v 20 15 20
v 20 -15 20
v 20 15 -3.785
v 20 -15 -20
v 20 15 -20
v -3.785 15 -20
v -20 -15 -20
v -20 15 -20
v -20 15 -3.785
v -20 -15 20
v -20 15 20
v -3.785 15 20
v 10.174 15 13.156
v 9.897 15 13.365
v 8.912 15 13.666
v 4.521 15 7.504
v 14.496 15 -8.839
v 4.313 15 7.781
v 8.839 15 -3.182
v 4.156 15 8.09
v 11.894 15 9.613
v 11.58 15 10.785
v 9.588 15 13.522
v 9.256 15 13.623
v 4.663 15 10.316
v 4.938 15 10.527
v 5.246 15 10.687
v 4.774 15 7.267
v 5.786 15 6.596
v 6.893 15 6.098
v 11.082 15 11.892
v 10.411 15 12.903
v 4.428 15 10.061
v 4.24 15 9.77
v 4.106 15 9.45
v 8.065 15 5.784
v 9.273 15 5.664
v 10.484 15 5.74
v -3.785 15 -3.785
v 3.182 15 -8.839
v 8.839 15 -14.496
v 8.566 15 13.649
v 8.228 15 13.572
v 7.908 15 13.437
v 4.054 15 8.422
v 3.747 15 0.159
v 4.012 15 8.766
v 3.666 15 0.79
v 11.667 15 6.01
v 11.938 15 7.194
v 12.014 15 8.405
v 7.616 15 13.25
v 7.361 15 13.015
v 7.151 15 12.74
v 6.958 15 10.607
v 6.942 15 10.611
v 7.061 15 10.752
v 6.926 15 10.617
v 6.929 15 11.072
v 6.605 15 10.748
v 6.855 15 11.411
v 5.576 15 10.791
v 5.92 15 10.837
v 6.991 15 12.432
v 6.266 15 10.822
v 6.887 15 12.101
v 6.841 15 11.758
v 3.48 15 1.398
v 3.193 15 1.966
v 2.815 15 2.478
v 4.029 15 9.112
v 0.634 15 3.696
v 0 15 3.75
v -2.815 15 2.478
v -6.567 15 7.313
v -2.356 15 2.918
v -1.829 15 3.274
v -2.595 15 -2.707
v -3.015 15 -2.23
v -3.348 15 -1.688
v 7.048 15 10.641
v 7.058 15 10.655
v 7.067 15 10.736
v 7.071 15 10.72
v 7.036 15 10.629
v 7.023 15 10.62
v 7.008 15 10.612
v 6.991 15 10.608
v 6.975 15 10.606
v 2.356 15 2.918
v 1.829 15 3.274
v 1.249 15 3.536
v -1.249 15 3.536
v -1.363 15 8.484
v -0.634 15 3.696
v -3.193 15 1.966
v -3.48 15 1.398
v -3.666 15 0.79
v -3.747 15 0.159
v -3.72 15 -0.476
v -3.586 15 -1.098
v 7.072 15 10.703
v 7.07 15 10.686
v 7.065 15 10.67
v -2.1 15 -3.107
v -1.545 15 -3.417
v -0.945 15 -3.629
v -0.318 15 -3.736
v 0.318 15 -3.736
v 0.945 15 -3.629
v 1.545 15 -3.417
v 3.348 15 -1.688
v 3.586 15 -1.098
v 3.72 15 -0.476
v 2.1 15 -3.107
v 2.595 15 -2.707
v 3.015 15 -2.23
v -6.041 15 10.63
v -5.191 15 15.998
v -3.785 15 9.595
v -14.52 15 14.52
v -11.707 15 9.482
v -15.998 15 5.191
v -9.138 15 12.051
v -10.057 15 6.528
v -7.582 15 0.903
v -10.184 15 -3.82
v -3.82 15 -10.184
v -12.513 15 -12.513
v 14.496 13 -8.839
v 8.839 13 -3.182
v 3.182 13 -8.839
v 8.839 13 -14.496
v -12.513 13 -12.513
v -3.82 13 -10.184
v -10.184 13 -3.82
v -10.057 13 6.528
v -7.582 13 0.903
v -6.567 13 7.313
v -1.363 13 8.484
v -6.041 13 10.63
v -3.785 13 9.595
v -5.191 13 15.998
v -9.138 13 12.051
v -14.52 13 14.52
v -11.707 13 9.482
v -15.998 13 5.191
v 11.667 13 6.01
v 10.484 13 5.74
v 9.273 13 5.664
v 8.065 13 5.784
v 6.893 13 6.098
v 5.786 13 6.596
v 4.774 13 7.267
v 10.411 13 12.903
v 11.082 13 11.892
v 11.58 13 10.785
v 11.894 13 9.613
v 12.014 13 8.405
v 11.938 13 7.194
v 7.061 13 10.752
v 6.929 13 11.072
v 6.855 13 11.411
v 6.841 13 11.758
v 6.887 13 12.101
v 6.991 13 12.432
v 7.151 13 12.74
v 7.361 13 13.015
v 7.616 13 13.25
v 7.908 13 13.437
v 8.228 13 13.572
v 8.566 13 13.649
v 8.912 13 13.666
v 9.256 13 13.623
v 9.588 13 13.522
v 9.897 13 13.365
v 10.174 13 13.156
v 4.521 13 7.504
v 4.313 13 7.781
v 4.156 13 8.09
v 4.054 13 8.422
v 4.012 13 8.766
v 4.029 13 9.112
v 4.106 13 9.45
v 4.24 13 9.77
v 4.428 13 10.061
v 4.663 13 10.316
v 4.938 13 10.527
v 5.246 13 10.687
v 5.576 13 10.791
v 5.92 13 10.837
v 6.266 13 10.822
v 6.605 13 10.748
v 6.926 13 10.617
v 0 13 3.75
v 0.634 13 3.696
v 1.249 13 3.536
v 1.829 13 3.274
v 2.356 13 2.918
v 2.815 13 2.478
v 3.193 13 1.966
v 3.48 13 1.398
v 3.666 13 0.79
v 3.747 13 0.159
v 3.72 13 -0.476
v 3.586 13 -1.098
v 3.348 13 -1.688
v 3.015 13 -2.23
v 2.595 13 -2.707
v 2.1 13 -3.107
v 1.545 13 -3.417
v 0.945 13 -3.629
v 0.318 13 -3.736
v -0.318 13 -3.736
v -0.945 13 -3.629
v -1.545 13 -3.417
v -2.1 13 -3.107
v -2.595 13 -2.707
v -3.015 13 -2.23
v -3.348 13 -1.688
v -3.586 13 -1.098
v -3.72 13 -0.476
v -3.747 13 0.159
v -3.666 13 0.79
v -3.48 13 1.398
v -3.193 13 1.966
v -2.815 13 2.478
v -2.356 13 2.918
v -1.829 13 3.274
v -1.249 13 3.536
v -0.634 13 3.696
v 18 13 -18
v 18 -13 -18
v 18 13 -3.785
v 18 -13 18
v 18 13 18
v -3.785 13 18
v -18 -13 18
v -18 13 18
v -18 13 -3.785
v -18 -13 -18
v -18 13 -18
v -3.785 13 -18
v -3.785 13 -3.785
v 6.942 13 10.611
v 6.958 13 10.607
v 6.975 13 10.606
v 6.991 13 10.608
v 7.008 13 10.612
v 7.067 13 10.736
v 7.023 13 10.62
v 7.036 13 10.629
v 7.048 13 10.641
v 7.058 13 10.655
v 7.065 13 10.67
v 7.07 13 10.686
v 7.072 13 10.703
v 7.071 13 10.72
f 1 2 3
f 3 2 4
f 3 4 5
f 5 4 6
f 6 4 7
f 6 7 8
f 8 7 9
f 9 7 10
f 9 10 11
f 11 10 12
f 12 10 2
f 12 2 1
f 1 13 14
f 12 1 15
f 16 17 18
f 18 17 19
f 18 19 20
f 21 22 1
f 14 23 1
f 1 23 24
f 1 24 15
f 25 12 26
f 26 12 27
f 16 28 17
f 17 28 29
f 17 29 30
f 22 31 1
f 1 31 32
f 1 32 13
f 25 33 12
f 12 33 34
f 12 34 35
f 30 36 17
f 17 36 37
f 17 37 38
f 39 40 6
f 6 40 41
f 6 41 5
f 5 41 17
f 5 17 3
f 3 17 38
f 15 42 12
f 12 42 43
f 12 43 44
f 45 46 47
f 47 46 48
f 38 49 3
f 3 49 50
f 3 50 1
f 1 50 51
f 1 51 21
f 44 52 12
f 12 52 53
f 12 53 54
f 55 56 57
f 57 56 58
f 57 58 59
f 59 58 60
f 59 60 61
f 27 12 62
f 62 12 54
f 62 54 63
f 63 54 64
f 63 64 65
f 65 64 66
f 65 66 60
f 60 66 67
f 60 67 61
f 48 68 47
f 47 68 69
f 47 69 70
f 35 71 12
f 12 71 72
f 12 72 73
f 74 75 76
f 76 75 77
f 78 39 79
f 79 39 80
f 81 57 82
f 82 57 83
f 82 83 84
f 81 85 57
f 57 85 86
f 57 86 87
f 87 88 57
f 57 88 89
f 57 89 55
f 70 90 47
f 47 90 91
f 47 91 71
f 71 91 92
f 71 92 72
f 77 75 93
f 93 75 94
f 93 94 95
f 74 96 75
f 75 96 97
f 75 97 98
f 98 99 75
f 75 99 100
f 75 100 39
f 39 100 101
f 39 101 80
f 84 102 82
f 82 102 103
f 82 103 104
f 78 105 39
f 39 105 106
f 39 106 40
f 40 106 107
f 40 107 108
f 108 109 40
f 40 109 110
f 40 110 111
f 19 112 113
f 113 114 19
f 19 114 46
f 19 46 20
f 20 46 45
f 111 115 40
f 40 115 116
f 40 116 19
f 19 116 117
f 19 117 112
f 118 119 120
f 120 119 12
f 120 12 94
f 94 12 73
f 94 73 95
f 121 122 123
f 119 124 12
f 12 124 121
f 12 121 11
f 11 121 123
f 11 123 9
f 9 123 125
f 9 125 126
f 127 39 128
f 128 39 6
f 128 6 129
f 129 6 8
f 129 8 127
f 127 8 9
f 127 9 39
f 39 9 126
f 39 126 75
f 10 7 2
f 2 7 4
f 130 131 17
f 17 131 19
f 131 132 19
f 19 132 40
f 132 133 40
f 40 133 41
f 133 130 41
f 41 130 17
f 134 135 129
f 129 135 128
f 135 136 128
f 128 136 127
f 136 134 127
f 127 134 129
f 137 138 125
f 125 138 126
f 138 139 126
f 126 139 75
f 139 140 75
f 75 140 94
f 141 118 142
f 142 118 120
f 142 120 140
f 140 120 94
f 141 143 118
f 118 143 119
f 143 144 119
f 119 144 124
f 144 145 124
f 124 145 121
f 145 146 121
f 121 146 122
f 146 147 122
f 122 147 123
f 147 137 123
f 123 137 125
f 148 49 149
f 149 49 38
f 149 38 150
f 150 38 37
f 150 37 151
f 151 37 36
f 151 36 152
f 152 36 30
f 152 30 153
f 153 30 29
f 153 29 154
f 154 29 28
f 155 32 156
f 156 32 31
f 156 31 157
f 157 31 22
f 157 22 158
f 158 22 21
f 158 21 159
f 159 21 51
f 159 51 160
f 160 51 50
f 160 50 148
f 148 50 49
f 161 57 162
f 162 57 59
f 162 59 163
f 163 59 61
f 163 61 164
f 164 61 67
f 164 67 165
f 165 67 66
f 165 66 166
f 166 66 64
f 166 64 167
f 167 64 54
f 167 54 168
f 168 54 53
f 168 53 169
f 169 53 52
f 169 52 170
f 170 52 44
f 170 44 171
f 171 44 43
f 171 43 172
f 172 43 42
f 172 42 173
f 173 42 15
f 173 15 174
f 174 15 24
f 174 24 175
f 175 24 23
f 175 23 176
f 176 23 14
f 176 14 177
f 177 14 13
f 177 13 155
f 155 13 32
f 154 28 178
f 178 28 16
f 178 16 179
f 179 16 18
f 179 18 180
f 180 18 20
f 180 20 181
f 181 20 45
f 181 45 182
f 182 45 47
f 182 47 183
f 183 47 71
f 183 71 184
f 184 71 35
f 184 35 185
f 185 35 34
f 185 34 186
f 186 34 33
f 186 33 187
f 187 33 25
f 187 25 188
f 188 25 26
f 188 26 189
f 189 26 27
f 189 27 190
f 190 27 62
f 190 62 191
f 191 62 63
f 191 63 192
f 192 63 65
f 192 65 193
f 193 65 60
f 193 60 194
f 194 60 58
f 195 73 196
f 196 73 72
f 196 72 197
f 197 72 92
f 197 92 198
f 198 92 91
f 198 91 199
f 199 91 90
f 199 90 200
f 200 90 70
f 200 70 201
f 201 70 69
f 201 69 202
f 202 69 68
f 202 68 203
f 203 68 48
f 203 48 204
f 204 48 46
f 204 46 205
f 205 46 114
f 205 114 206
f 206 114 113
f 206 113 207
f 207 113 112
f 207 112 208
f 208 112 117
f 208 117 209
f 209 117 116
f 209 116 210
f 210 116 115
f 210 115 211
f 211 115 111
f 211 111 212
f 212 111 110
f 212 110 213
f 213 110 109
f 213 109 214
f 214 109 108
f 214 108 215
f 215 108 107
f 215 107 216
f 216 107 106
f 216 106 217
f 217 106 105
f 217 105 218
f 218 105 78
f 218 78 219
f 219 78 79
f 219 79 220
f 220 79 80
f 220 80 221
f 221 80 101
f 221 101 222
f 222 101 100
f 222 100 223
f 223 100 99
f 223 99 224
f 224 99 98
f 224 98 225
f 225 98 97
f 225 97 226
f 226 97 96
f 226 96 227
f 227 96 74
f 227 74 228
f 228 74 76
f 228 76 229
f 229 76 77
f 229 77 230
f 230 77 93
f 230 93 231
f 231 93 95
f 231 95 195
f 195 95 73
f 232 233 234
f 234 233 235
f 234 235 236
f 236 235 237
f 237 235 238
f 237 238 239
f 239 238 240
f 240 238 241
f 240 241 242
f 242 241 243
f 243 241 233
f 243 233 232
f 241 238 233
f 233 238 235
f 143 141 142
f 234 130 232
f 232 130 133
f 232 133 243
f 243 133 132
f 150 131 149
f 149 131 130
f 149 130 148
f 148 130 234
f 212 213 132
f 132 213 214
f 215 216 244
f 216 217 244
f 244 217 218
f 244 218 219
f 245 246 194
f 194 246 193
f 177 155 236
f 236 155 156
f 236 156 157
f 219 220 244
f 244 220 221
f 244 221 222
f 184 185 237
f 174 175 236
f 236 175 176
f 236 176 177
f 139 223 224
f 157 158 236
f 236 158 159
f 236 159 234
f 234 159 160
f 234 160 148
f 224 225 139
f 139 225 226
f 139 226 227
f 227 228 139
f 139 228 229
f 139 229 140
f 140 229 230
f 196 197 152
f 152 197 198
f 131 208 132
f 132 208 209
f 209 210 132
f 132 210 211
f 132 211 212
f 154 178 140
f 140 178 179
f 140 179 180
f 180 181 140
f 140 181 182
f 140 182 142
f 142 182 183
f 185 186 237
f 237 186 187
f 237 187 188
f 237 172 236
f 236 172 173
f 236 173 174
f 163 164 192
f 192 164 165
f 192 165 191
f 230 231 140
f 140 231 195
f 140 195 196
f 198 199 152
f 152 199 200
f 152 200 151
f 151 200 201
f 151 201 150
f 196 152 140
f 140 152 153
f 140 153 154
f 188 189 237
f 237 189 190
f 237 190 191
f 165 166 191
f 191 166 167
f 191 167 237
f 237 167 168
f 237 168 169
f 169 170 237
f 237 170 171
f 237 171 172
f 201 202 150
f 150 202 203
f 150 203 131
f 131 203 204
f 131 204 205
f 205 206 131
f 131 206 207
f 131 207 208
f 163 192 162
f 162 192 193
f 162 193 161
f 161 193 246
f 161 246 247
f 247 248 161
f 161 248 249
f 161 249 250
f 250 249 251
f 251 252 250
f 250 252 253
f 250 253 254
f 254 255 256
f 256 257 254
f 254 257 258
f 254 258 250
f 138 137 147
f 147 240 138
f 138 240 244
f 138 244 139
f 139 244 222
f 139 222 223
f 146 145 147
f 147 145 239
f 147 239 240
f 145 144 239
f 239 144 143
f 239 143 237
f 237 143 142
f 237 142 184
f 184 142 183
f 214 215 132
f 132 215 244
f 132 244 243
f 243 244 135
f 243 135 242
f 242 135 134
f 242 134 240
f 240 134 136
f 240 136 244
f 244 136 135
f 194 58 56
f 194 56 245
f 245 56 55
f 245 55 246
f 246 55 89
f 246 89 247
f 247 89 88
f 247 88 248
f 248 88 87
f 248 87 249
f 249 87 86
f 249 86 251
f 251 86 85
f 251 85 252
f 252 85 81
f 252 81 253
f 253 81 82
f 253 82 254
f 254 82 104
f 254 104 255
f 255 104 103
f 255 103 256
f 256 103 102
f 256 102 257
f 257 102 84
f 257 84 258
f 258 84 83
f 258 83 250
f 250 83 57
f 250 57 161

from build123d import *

# Parameters (mm, degrees)
SKETCH1_W           = 40
SKETCH1_H           = 40
BOSS_EXTRUDE1_DEPTH = 15
SKETCH2_W           = 36
SKETCH2_H           = 36
CUT_EXTRUDE1_DEPTH  = 26
SKETCH4_R           = 3.75
CUT_EXTRUDE4_DEPTH  = 2
FILLET1_R           = 0.1


with BuildPart() as part:
    # Sketch1 → Boss-Extrude1 (new, symmetric)
    with BuildSketch(Plane(origin=(0, 0, 0), x_dir=(1, 0, 0), z_dir=(0, 1, 0))):
        Rectangle(SKETCH1_W, SKETCH1_H)
    extrude(amount=BOSS_EXTRUDE1_DEPTH, both=True)

    # Sketch2 → Cut-Extrude1 (cut)
    with BuildSketch(Plane(origin=(0, 13, 0), x_dir=(1, 0, 0), z_dir=(0, 1, 0))):
        Rectangle(SKETCH2_W, SKETCH2_H)
    extrude(amount=-CUT_EXTRUDE1_DEPTH, mode=Mode.SUBTRACT)

    # Sketch4 → Cut-Extrude4 (cut)
    with BuildSketch(Plane(origin=(0, 15, 0), x_dir=(1, 0, 0), z_dir=(0, 1, 0))):
        with Locations(Location((0, 0, 0), (0, 0, 270))):
            Circle(SKETCH4_R)
        Polygon((-15.997574875, -5.191274493), (-10.056879788, -6.527978961), (-7.581971152, -0.903310223), (-6.566729947, -7.313290918), (-1.363004172, -8.484171327), (-6.041352713, -10.630392221), (-5.191274493, -15.997574875), (-9.13789809, -12.050951278), (-14.520043083, -14.520043083), (-11.706657929, -9.482191438), align=None)
        Polygon((14.495689014, 8.838834765), (8.838834765, 14.495689014), (3.181980515, 8.838834765), (8.838834765, 3.181980515), align=None)
        Polygon((-12.513069379, 12.513069379), (-10.183697973, 3.819736942), (-3.819736942, 10.183697973), align=None)
        with BuildLine():
            ThreePointArc((10.41110341, -12.903373255), (11.893574864, -9.612592954), (11.66726189, -6.01040764))
            ThreePointArc((11.66726189, -6.01040764), (8.065076576, -5.784094666), (4.774296275, -7.26656612))
            ThreePointArc((4.774296275, -7.26656612), (4.514513562, -10.166351585), (7.424621202, -10.253048327))
            ThreePointArc((7.424621202, -10.253048327), (7.511317945, -13.163155967), (10.41110341, -12.903373255))
        make_face()
    extrude(amount=-CUT_EXTRUDE4_DEPTH, mode=Mode.SUBTRACT)

    # Fillet1
    fillet1_edges = [part.edges().sort_by_distance(p)[0] for p in [
        (7.424621202, 14, 10.253048327),
    ]]
    fillet(fillet1_edges, radius=FILLET1_R)


solid = part.part
